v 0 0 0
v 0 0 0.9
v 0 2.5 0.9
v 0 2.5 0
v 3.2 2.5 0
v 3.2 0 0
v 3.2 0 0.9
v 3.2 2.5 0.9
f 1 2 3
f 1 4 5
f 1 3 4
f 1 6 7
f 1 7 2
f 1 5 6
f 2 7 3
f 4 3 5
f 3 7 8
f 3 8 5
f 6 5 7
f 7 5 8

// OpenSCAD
/* Warning, this is a very basic generator with a lot of approximation 
input data : [VDFN, KDA, 3.2x2.5x0.9mm, 6, , A, C04-01252A]
generated by com.zoubworld.electronics.cad.model3d.Basic
Date : Sun Feb 15 10:50:49 CET 2026
*/

//body
color("black")
translate([0,0,0])
cube([3.2,2.5,0.9], center=false);
